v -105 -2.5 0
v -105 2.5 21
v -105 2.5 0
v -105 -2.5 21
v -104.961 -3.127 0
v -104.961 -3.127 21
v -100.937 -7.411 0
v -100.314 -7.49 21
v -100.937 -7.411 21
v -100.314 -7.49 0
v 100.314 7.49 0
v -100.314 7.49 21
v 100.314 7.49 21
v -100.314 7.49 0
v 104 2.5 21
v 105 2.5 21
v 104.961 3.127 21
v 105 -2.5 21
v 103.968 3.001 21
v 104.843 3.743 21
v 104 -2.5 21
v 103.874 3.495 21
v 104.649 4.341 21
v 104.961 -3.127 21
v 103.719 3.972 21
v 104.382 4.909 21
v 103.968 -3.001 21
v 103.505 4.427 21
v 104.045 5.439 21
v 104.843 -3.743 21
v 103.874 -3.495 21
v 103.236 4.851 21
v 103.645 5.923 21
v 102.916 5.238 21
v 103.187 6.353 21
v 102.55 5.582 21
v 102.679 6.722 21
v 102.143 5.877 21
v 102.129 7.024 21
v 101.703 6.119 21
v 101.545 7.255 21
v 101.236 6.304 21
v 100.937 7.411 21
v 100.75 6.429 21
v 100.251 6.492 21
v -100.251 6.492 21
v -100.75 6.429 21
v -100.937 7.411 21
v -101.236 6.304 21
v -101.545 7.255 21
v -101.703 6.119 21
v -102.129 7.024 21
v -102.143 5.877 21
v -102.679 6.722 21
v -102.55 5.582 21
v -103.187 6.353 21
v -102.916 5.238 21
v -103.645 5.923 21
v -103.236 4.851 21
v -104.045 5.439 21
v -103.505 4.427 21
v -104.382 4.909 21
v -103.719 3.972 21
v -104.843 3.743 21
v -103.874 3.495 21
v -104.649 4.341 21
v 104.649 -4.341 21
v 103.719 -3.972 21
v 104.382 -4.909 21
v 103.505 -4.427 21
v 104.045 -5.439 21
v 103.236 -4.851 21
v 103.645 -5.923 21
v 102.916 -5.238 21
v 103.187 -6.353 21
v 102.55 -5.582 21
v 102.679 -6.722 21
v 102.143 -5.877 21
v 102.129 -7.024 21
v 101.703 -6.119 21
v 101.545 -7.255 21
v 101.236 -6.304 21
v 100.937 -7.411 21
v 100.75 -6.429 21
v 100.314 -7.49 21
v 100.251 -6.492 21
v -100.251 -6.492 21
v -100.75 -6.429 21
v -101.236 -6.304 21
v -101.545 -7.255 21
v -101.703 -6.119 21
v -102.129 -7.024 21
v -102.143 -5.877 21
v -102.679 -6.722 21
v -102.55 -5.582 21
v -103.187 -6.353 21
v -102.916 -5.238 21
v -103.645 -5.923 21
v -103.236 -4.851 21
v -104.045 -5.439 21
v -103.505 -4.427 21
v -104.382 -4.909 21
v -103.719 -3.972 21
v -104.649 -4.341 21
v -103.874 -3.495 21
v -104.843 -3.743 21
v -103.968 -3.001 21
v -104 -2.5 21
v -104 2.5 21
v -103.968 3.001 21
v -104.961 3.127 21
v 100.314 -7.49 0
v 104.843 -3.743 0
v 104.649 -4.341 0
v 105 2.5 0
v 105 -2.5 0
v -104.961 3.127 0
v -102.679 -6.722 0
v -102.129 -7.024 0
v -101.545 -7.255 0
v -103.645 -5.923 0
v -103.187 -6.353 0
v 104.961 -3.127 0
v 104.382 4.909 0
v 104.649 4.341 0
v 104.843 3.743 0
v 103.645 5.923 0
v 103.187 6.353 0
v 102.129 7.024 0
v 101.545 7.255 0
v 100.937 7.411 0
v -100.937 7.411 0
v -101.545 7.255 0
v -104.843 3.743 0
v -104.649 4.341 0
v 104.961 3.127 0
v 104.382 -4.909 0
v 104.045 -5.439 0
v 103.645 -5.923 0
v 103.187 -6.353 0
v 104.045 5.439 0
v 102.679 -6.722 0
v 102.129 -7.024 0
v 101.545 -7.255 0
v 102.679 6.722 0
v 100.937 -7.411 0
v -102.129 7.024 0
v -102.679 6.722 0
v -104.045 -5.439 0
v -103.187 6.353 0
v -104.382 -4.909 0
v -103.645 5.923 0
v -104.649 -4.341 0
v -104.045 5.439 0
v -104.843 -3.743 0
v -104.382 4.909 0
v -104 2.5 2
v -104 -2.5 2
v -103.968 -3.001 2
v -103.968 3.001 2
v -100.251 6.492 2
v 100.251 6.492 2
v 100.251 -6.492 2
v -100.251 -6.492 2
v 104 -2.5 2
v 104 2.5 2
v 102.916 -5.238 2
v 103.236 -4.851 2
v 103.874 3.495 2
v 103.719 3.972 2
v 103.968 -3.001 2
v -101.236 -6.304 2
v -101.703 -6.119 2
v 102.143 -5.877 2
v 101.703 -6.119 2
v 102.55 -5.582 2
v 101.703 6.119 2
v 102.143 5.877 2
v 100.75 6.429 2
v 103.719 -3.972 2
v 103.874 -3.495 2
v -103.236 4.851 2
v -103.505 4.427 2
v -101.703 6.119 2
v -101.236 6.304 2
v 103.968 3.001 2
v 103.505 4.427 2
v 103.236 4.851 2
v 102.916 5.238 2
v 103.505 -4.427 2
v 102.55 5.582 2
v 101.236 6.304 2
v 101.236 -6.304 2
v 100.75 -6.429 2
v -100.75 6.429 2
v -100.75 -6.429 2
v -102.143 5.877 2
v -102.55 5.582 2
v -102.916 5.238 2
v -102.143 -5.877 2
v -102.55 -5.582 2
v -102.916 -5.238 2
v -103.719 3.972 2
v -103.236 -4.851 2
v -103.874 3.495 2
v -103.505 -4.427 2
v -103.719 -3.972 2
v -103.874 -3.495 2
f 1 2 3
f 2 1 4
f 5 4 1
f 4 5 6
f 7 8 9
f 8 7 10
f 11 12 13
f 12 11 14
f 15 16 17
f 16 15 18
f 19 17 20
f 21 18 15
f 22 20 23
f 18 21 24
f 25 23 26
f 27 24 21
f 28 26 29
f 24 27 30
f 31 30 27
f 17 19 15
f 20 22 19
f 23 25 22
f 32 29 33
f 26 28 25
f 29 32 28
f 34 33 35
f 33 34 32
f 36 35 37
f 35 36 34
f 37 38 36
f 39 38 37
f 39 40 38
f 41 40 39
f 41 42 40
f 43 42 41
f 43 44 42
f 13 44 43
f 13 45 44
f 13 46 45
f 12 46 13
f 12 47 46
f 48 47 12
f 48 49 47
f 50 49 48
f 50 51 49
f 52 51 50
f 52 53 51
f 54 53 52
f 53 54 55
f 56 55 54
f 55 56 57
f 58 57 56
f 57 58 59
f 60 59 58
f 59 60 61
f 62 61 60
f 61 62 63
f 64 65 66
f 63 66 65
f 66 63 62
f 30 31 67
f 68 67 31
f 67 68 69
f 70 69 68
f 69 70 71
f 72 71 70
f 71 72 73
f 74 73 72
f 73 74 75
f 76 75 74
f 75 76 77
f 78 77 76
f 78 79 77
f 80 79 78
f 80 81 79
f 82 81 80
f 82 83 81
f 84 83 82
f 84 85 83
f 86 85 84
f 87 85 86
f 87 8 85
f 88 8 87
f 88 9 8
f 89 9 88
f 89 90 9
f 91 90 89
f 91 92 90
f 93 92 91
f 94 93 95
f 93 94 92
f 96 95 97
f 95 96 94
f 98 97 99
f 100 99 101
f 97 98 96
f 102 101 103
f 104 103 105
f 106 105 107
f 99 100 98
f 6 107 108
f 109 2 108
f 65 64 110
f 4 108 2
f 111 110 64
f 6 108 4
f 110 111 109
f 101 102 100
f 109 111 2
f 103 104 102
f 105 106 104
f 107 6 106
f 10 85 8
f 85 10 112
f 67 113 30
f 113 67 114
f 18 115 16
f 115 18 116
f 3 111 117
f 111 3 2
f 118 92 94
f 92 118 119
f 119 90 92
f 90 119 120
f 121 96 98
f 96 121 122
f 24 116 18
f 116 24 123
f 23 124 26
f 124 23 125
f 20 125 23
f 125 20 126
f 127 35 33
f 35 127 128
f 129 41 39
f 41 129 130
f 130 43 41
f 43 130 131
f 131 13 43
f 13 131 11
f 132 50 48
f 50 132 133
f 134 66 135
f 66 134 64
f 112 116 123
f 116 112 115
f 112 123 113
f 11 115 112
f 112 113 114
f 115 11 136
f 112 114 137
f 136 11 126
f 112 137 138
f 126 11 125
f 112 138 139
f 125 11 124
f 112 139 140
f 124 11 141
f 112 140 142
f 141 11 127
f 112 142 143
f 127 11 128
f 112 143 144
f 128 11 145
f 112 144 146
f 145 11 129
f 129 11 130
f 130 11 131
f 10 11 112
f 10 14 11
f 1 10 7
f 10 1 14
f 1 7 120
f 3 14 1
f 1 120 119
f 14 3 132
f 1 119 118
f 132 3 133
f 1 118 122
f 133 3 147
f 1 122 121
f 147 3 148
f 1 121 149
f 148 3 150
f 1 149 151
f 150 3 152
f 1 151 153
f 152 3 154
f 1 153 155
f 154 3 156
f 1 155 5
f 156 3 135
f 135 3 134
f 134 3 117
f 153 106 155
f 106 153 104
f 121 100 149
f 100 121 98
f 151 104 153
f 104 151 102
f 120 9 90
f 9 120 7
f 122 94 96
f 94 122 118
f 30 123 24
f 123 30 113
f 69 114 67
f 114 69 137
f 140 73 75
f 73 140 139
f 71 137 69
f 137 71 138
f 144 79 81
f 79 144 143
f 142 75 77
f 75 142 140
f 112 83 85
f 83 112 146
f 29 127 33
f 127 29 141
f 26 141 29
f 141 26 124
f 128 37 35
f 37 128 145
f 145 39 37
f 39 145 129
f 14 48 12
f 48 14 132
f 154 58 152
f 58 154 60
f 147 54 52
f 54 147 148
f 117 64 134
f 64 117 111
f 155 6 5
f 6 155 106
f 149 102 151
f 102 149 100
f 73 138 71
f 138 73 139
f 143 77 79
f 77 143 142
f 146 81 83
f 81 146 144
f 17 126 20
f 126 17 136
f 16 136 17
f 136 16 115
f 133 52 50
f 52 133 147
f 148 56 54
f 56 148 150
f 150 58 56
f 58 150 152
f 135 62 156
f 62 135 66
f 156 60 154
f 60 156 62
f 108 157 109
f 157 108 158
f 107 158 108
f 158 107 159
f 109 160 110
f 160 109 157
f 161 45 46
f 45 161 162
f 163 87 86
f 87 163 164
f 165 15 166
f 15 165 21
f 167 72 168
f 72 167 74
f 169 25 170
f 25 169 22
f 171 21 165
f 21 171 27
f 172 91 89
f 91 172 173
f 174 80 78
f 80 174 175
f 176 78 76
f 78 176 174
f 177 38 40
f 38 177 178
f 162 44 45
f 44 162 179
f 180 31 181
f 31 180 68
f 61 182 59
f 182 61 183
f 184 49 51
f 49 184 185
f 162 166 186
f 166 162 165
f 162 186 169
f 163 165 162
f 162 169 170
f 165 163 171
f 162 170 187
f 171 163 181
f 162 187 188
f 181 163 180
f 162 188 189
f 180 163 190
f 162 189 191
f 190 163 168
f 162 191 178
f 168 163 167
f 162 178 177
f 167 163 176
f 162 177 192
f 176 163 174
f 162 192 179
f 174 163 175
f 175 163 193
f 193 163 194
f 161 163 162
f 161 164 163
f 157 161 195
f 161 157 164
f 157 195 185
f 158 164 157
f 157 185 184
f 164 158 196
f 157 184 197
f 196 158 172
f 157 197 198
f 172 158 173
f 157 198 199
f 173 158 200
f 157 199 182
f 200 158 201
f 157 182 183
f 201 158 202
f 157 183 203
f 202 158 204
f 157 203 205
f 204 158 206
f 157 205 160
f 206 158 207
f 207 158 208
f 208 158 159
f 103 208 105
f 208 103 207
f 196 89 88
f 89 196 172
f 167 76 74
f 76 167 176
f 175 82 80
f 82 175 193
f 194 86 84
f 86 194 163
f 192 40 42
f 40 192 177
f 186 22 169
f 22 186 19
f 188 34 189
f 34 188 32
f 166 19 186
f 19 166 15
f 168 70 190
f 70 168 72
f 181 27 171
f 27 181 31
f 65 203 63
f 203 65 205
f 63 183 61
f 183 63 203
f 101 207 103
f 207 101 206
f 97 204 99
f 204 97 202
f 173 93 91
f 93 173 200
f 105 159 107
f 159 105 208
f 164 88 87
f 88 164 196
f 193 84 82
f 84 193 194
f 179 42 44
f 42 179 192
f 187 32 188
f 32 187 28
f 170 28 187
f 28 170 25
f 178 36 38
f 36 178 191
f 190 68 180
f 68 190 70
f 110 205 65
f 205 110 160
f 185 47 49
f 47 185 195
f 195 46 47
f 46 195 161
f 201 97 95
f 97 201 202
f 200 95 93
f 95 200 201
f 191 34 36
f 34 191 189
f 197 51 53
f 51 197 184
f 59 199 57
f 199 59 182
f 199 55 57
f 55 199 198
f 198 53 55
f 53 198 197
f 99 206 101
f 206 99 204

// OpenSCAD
$fn = 50;


difference() {
	union() {
		hull() {
			translate(v = [-100.0000000000, 2.5000000000, 0]) {
				cylinder(h = 21, r = 5);
			}
			translate(v = [100.0000000000, 2.5000000000, 0]) {
				cylinder(h = 21, r = 5);
			}
			translate(v = [-100.0000000000, -2.5000000000, 0]) {
				cylinder(h = 21, r = 5);
			}
			translate(v = [100.0000000000, -2.5000000000, 0]) {
				cylinder(h = 21, r = 5);
			}
		}
	}
	union() {
		translate(v = [0, 0, 2]) {
			hull() {
				translate(v = [-100.0000000000, 2.5000000000, 0]) {
					cylinder(h = 19, r = 4);
				}
				translate(v = [100.0000000000, 2.5000000000, 0]) {
					cylinder(h = 19, r = 4);
				}
				translate(v = [-100.0000000000, -2.5000000000, 0]) {
					cylinder(h = 19, r = 4);
				}
				translate(v = [100.0000000000, -2.5000000000, 0]) {
					cylinder(h = 19, r = 4);
				}
			}
		}
	}
}
